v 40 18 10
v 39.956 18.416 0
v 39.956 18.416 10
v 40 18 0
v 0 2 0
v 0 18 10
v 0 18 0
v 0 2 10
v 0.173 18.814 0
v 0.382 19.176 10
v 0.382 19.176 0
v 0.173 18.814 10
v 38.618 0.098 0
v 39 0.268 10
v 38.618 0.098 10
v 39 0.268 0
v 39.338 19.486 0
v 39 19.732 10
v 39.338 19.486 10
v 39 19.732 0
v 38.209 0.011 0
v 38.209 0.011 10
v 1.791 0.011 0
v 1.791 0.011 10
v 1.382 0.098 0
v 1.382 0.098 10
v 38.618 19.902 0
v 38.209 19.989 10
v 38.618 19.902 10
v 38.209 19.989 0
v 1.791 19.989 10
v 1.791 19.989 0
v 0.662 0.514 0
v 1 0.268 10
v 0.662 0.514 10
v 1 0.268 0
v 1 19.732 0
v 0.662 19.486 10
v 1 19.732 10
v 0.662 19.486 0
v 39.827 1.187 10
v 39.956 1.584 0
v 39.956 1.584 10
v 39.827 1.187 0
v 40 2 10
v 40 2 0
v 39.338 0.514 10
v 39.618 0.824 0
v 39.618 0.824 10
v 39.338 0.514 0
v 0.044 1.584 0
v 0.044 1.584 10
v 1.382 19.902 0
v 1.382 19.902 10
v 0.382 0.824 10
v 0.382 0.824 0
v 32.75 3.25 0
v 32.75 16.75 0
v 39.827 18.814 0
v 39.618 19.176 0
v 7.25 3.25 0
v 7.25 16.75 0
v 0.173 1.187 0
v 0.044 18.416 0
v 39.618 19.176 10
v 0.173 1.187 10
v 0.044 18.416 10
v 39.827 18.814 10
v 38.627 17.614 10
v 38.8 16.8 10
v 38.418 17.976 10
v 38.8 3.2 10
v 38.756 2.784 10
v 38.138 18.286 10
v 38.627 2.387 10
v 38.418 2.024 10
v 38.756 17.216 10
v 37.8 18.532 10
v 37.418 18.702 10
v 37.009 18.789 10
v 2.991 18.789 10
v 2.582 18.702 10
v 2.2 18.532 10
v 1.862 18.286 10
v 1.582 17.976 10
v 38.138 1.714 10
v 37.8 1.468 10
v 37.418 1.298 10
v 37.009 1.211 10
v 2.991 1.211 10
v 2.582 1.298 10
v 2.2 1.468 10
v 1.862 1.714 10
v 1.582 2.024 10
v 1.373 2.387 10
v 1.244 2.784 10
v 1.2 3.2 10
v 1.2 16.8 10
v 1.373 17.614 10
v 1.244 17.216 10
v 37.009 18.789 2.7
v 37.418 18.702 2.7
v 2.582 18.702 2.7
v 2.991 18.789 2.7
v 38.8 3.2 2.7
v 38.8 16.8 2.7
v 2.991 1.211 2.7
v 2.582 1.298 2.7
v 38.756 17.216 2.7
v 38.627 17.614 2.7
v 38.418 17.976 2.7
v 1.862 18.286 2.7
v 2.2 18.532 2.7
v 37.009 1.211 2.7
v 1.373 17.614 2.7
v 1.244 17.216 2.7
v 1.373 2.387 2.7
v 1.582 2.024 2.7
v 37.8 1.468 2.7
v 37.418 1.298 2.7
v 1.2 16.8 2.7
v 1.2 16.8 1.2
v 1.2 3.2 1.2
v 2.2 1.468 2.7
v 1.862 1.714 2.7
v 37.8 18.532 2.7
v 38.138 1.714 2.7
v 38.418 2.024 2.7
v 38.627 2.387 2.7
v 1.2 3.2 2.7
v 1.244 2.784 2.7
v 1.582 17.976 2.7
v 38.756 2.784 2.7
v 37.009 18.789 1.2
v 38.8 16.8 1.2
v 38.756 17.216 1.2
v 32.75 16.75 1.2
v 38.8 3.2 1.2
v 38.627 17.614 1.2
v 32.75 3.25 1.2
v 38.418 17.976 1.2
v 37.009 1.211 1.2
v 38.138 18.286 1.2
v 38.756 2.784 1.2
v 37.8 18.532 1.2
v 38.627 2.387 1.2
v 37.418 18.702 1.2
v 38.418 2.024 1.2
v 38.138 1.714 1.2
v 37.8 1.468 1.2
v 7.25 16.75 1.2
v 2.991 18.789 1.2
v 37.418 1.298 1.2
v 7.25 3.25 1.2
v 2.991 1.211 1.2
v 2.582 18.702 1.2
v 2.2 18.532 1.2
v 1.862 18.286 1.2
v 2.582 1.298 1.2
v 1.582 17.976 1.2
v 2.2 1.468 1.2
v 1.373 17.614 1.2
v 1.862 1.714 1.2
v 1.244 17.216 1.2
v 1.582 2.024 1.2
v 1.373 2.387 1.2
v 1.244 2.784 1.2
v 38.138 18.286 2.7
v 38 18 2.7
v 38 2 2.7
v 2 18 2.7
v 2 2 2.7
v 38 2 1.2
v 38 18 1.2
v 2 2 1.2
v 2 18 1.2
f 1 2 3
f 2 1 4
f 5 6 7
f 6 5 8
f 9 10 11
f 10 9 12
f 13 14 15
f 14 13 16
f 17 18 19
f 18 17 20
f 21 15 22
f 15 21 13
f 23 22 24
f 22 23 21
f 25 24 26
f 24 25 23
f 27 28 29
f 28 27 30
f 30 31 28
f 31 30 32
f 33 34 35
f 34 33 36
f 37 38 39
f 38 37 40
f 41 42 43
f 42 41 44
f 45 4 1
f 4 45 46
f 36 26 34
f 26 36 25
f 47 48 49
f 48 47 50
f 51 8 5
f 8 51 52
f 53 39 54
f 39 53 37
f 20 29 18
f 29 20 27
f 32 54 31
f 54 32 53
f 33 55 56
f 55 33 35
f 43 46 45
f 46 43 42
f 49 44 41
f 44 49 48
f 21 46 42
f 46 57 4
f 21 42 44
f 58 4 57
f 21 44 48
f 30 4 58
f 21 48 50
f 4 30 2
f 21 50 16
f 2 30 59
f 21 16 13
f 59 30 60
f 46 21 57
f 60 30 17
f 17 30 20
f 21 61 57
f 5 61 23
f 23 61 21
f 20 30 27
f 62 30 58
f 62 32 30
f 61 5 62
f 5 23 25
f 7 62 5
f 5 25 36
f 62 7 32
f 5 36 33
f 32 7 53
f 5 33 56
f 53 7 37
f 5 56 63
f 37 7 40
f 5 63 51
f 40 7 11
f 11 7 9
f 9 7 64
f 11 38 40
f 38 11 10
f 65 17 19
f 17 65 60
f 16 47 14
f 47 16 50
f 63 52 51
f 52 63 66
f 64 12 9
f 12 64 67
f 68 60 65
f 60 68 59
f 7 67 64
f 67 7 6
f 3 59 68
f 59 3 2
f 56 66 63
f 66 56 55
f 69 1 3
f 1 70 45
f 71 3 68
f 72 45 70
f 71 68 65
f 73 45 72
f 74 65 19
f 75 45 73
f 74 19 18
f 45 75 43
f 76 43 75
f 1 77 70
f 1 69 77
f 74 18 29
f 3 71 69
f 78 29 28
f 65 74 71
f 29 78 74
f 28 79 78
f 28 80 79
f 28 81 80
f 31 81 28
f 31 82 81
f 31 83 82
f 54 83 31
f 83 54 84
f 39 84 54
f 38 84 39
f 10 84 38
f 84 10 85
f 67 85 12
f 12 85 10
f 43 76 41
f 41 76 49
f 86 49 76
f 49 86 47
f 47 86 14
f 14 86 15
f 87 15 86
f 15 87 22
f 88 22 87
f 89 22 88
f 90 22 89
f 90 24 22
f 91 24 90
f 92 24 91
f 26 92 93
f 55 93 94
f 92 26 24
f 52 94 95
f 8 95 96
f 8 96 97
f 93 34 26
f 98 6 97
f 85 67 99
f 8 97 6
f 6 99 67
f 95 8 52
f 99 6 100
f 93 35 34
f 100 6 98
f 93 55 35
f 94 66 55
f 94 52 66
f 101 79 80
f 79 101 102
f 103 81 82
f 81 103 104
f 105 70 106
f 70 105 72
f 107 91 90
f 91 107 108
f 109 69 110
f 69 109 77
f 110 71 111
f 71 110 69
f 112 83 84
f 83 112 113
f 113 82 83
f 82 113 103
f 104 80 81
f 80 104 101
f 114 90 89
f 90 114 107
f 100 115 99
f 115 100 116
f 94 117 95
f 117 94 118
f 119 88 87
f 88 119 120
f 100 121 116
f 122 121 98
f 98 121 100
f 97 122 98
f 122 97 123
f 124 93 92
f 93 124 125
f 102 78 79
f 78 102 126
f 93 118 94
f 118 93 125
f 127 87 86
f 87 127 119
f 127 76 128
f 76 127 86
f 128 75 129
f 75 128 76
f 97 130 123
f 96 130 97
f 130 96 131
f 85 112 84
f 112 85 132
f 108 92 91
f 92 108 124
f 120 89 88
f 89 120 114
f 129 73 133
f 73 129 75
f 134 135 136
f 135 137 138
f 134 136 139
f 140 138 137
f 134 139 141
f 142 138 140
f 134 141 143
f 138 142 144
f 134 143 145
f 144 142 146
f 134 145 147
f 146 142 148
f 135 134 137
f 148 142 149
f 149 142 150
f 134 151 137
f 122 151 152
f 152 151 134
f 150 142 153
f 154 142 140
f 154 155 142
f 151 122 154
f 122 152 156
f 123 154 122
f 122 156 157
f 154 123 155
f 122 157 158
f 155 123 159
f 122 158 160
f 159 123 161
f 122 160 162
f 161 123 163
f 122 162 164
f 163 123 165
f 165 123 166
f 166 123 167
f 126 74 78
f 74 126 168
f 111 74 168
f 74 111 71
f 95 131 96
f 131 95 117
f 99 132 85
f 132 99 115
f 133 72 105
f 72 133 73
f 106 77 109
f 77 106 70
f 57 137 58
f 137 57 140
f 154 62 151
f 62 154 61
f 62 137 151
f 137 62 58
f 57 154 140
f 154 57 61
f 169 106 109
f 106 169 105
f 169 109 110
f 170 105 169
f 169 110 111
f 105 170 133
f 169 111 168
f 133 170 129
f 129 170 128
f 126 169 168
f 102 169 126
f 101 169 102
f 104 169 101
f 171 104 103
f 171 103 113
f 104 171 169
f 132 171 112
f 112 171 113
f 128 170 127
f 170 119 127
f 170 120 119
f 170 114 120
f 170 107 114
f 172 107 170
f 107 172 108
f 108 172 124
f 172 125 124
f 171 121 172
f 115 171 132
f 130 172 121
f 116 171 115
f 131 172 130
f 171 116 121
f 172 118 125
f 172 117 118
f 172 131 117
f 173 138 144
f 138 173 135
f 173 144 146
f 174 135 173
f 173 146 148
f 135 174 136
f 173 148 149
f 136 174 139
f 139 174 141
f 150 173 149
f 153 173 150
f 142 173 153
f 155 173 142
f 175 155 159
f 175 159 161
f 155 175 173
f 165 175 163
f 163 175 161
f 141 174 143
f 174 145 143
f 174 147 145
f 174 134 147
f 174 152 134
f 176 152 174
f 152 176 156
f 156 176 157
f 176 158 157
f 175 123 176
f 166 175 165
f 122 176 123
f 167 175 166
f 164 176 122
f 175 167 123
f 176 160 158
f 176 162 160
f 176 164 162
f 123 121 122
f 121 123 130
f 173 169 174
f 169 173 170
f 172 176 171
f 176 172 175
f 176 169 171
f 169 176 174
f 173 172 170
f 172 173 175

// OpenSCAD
// RWC Display Module Case - 40x20x10mm (2U)
// 0.96" OLED SSD1306 128x64

$fn = 30;

// Dimensions
case_w = 40;
case_d = 20;
case_h = 10;
wall = 1.2;
corner_r = 2;

// OLED window
oled_w = 25.5;  // visible area
oled_h = 13.5;
oled_offset_y = 0;  // centered

// Magnet holes: 5mm dia, 2mm deep
mag_d = 5;
mag_depth = 2.2;
mag_inset = 4.5;  // from center to edge

// Pogo pad opening
pogo_w = 20;
pogo_d = 8;

module rounded_box(w, d, h, r) {
    hull() {
        for (x = [r, w-r], y = [r, d-r])
            translate([x, y, 0])
                cylinder(r=r, h=h);
    }
}

module case_shell() {
    difference() {
        // Outer shell
        rounded_box(case_w, case_d, case_h, corner_r);
        
        // Inner cavity
        translate([wall, wall, wall])
            rounded_box(case_w - 2*wall, case_d - 2*wall, case_h, corner_r);
        
        // OLED window (front/top face)
        translate([(case_w - oled_w)/2, (case_d - oled_h)/2 + oled_offset_y, -0.1])
            cube([oled_w, oled_h, wall + 0.2]);
        
        // Bottom pogo pad opening
        translate([(case_w - pogo_w)/2, (case_d - pogo_d)/2, case_h - wall - 0.1])
            cube([pogo_w, pogo_d, wall + 0.2]);
        
        // Magnet holes (from bottom)
        for (x = [mag_inset, case_w - mag_inset],
             y = [mag_inset, case_d - mag_inset])
            translate([x, y, case_h - mag_depth])
                cylinder(d=mag_d, h=mag_depth + 0.1);
    }
}

// OLED support ledge inside
module oled_ledge() {
    ledge_w = 0.8;
    translate([wall, wall, wall])
        difference() {
            cube([case_w - 2*wall, case_d - 2*wall, 1.5]);
            translate([ledge_w, ledge_w, -0.1])
                cube([case_w - 2*wall - 2*ledge_w, case_d - 2*wall - 2*ledge_w, 2]);
        }
}

case_shell();
oled_ledge();
